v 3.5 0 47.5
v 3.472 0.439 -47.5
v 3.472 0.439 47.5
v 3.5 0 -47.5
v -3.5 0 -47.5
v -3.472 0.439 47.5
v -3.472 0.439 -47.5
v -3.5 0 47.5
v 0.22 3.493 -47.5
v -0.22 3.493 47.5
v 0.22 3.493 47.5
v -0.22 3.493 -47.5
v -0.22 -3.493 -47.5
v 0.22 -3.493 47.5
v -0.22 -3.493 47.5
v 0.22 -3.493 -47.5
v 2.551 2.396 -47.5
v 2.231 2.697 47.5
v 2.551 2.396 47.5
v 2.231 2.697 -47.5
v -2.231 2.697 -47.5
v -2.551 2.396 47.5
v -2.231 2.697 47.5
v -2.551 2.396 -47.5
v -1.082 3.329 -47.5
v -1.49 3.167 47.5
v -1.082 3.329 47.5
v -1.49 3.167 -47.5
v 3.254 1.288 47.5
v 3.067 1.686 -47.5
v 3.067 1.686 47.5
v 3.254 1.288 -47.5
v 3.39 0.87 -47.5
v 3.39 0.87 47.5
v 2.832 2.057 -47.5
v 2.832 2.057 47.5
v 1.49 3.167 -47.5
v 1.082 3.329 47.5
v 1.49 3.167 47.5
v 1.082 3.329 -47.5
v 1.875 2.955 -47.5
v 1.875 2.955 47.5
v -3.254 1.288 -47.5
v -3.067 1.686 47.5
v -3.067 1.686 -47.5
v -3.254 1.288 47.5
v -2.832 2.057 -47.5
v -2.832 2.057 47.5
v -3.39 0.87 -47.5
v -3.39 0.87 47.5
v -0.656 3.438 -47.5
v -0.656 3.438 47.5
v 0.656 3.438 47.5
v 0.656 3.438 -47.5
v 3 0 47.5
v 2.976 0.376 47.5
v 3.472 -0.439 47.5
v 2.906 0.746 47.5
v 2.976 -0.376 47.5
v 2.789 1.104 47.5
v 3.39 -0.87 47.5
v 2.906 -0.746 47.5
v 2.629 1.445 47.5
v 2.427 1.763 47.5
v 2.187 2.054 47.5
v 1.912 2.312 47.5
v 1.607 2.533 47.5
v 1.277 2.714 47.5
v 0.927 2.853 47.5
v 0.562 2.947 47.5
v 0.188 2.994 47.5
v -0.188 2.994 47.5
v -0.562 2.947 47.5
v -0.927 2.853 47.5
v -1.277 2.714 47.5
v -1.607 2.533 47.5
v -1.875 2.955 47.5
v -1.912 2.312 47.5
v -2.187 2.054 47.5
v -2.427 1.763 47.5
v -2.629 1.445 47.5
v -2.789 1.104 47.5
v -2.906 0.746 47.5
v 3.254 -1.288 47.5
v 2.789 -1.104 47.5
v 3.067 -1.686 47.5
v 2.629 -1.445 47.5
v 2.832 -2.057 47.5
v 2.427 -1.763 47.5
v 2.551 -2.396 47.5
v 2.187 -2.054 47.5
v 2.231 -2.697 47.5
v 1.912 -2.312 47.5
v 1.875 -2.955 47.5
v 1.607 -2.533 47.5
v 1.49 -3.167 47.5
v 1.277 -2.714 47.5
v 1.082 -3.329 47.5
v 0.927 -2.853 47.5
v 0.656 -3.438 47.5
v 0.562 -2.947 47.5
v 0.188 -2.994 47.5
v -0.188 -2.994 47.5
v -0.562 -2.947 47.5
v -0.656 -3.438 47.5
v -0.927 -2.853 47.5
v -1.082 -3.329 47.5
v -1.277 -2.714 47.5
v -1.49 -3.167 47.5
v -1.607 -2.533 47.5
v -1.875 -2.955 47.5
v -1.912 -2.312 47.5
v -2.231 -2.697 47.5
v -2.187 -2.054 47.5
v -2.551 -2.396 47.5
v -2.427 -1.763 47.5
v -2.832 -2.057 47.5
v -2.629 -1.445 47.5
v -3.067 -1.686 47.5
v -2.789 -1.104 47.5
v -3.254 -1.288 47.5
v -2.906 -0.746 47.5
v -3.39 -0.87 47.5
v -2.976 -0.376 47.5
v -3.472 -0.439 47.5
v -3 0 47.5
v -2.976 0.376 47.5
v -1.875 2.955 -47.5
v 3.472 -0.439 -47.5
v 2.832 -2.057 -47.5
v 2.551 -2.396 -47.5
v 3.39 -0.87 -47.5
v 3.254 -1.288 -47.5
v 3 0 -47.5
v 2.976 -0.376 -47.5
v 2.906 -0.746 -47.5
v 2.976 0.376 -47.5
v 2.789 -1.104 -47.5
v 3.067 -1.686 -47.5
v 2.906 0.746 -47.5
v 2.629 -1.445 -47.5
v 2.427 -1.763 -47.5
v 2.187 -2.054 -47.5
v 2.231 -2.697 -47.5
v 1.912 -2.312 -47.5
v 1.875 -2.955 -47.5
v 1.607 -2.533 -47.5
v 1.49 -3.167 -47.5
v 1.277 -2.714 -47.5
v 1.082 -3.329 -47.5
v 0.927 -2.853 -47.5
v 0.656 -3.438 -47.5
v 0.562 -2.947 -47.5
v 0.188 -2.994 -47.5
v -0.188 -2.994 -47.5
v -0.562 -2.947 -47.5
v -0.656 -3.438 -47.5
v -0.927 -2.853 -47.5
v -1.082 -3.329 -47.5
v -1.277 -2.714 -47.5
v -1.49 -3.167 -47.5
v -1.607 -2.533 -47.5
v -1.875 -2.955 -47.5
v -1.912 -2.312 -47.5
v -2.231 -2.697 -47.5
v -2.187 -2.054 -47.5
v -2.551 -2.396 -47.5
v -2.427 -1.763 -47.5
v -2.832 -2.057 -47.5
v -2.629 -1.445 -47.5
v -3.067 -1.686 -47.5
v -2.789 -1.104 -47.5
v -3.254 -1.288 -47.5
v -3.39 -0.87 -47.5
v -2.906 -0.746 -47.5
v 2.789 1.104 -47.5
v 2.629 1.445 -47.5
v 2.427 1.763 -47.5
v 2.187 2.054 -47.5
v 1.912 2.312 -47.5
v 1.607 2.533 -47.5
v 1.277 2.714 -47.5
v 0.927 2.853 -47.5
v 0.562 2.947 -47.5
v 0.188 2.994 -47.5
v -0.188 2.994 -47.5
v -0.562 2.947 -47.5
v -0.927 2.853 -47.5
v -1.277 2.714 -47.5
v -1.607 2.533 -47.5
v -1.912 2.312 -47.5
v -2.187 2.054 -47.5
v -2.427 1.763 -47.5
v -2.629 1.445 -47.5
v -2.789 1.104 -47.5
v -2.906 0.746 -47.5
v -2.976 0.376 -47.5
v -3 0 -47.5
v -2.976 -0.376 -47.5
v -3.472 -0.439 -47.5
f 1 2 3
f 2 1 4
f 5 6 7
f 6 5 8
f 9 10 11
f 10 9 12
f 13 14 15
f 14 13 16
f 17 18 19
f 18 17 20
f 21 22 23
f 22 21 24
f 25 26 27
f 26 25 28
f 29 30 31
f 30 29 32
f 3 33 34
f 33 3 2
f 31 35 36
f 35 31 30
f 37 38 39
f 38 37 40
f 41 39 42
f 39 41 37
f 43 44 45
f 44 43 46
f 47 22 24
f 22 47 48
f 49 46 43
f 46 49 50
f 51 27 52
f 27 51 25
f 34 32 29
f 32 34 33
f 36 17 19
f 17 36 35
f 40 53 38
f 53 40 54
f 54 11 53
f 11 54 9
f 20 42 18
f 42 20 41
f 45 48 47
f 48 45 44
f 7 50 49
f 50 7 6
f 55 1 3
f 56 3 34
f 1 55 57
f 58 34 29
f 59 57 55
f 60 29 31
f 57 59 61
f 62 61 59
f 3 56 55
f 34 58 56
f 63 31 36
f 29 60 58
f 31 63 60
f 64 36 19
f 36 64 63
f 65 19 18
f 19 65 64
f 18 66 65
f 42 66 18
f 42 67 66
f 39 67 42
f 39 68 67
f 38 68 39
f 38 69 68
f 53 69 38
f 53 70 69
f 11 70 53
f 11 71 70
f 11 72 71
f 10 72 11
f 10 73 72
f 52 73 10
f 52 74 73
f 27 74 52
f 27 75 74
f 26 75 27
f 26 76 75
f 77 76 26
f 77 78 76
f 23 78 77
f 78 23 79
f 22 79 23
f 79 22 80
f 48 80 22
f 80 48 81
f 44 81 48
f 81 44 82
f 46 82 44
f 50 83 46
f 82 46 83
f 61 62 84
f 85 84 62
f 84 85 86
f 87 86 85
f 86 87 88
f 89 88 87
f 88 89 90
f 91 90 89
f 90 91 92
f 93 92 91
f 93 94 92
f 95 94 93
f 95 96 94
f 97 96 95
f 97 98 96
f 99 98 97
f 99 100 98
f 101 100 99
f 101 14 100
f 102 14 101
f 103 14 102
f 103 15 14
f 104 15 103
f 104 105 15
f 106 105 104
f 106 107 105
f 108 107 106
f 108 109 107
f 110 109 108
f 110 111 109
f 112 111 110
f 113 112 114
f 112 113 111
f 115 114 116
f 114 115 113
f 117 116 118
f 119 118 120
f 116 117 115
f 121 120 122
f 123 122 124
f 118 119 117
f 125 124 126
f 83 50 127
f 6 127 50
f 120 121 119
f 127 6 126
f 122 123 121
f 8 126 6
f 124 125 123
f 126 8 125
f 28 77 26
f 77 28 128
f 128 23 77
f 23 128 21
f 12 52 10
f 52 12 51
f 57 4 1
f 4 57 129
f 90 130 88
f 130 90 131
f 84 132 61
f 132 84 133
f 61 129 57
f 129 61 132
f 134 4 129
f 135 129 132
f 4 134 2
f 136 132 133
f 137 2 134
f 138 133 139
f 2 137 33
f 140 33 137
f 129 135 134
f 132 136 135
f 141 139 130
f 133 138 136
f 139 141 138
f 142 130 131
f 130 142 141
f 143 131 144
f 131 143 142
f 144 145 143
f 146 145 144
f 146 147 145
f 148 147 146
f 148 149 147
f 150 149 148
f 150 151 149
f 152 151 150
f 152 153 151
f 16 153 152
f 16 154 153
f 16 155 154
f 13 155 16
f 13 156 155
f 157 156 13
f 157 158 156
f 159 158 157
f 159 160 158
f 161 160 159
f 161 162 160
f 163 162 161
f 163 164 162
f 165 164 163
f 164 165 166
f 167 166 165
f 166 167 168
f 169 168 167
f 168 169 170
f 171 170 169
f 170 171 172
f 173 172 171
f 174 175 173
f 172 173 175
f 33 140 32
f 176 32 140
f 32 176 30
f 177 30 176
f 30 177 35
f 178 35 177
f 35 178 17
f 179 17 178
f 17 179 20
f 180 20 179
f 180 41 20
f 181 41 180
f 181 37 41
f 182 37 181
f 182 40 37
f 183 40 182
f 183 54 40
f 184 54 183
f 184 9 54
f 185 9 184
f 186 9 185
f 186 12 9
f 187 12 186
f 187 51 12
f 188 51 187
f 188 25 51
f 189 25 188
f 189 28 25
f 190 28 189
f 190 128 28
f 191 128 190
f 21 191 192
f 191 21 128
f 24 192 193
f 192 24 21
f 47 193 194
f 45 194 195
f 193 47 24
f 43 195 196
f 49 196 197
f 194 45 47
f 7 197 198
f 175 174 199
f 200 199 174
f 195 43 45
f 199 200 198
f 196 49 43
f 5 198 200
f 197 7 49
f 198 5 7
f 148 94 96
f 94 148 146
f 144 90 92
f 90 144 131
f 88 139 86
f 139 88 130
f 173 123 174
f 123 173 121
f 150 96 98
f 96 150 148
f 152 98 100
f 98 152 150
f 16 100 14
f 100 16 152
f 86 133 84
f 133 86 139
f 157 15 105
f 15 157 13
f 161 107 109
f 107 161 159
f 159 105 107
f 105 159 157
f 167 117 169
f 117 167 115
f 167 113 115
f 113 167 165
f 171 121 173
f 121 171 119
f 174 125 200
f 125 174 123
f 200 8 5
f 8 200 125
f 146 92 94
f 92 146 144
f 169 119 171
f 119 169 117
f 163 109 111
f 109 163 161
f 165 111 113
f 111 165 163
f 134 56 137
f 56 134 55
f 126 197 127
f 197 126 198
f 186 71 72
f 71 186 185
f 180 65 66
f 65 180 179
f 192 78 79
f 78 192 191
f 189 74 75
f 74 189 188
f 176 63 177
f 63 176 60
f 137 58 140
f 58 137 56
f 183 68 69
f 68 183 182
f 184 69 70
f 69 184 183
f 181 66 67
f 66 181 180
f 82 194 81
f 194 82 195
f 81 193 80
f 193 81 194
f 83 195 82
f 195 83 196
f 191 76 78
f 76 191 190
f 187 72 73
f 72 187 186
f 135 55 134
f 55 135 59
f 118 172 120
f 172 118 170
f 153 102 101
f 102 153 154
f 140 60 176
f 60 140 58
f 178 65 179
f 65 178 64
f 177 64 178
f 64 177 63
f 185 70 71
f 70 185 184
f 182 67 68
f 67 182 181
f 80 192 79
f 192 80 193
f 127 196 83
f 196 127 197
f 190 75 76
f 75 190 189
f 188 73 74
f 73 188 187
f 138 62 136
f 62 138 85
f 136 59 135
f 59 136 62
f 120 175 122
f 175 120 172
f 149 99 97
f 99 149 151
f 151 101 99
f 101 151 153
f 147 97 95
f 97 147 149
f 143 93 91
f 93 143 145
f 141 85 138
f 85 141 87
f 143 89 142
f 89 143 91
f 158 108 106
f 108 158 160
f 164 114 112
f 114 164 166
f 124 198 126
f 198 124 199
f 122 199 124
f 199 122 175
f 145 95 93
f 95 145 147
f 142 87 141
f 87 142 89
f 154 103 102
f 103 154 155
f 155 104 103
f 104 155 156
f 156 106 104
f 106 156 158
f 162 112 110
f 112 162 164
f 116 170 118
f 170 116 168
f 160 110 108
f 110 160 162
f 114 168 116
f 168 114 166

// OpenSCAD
$fn = 50;


difference() {
	union() {
		translate(v = [0, 0, -47.5000000000]) {
			cylinder(h = 95, r = 3.5000000000);
		}
	}
	union() {
		translate(v = [0, 0, -100.0000000000]) {
			cylinder(h = 200, r = 3);
		}
	}
}
